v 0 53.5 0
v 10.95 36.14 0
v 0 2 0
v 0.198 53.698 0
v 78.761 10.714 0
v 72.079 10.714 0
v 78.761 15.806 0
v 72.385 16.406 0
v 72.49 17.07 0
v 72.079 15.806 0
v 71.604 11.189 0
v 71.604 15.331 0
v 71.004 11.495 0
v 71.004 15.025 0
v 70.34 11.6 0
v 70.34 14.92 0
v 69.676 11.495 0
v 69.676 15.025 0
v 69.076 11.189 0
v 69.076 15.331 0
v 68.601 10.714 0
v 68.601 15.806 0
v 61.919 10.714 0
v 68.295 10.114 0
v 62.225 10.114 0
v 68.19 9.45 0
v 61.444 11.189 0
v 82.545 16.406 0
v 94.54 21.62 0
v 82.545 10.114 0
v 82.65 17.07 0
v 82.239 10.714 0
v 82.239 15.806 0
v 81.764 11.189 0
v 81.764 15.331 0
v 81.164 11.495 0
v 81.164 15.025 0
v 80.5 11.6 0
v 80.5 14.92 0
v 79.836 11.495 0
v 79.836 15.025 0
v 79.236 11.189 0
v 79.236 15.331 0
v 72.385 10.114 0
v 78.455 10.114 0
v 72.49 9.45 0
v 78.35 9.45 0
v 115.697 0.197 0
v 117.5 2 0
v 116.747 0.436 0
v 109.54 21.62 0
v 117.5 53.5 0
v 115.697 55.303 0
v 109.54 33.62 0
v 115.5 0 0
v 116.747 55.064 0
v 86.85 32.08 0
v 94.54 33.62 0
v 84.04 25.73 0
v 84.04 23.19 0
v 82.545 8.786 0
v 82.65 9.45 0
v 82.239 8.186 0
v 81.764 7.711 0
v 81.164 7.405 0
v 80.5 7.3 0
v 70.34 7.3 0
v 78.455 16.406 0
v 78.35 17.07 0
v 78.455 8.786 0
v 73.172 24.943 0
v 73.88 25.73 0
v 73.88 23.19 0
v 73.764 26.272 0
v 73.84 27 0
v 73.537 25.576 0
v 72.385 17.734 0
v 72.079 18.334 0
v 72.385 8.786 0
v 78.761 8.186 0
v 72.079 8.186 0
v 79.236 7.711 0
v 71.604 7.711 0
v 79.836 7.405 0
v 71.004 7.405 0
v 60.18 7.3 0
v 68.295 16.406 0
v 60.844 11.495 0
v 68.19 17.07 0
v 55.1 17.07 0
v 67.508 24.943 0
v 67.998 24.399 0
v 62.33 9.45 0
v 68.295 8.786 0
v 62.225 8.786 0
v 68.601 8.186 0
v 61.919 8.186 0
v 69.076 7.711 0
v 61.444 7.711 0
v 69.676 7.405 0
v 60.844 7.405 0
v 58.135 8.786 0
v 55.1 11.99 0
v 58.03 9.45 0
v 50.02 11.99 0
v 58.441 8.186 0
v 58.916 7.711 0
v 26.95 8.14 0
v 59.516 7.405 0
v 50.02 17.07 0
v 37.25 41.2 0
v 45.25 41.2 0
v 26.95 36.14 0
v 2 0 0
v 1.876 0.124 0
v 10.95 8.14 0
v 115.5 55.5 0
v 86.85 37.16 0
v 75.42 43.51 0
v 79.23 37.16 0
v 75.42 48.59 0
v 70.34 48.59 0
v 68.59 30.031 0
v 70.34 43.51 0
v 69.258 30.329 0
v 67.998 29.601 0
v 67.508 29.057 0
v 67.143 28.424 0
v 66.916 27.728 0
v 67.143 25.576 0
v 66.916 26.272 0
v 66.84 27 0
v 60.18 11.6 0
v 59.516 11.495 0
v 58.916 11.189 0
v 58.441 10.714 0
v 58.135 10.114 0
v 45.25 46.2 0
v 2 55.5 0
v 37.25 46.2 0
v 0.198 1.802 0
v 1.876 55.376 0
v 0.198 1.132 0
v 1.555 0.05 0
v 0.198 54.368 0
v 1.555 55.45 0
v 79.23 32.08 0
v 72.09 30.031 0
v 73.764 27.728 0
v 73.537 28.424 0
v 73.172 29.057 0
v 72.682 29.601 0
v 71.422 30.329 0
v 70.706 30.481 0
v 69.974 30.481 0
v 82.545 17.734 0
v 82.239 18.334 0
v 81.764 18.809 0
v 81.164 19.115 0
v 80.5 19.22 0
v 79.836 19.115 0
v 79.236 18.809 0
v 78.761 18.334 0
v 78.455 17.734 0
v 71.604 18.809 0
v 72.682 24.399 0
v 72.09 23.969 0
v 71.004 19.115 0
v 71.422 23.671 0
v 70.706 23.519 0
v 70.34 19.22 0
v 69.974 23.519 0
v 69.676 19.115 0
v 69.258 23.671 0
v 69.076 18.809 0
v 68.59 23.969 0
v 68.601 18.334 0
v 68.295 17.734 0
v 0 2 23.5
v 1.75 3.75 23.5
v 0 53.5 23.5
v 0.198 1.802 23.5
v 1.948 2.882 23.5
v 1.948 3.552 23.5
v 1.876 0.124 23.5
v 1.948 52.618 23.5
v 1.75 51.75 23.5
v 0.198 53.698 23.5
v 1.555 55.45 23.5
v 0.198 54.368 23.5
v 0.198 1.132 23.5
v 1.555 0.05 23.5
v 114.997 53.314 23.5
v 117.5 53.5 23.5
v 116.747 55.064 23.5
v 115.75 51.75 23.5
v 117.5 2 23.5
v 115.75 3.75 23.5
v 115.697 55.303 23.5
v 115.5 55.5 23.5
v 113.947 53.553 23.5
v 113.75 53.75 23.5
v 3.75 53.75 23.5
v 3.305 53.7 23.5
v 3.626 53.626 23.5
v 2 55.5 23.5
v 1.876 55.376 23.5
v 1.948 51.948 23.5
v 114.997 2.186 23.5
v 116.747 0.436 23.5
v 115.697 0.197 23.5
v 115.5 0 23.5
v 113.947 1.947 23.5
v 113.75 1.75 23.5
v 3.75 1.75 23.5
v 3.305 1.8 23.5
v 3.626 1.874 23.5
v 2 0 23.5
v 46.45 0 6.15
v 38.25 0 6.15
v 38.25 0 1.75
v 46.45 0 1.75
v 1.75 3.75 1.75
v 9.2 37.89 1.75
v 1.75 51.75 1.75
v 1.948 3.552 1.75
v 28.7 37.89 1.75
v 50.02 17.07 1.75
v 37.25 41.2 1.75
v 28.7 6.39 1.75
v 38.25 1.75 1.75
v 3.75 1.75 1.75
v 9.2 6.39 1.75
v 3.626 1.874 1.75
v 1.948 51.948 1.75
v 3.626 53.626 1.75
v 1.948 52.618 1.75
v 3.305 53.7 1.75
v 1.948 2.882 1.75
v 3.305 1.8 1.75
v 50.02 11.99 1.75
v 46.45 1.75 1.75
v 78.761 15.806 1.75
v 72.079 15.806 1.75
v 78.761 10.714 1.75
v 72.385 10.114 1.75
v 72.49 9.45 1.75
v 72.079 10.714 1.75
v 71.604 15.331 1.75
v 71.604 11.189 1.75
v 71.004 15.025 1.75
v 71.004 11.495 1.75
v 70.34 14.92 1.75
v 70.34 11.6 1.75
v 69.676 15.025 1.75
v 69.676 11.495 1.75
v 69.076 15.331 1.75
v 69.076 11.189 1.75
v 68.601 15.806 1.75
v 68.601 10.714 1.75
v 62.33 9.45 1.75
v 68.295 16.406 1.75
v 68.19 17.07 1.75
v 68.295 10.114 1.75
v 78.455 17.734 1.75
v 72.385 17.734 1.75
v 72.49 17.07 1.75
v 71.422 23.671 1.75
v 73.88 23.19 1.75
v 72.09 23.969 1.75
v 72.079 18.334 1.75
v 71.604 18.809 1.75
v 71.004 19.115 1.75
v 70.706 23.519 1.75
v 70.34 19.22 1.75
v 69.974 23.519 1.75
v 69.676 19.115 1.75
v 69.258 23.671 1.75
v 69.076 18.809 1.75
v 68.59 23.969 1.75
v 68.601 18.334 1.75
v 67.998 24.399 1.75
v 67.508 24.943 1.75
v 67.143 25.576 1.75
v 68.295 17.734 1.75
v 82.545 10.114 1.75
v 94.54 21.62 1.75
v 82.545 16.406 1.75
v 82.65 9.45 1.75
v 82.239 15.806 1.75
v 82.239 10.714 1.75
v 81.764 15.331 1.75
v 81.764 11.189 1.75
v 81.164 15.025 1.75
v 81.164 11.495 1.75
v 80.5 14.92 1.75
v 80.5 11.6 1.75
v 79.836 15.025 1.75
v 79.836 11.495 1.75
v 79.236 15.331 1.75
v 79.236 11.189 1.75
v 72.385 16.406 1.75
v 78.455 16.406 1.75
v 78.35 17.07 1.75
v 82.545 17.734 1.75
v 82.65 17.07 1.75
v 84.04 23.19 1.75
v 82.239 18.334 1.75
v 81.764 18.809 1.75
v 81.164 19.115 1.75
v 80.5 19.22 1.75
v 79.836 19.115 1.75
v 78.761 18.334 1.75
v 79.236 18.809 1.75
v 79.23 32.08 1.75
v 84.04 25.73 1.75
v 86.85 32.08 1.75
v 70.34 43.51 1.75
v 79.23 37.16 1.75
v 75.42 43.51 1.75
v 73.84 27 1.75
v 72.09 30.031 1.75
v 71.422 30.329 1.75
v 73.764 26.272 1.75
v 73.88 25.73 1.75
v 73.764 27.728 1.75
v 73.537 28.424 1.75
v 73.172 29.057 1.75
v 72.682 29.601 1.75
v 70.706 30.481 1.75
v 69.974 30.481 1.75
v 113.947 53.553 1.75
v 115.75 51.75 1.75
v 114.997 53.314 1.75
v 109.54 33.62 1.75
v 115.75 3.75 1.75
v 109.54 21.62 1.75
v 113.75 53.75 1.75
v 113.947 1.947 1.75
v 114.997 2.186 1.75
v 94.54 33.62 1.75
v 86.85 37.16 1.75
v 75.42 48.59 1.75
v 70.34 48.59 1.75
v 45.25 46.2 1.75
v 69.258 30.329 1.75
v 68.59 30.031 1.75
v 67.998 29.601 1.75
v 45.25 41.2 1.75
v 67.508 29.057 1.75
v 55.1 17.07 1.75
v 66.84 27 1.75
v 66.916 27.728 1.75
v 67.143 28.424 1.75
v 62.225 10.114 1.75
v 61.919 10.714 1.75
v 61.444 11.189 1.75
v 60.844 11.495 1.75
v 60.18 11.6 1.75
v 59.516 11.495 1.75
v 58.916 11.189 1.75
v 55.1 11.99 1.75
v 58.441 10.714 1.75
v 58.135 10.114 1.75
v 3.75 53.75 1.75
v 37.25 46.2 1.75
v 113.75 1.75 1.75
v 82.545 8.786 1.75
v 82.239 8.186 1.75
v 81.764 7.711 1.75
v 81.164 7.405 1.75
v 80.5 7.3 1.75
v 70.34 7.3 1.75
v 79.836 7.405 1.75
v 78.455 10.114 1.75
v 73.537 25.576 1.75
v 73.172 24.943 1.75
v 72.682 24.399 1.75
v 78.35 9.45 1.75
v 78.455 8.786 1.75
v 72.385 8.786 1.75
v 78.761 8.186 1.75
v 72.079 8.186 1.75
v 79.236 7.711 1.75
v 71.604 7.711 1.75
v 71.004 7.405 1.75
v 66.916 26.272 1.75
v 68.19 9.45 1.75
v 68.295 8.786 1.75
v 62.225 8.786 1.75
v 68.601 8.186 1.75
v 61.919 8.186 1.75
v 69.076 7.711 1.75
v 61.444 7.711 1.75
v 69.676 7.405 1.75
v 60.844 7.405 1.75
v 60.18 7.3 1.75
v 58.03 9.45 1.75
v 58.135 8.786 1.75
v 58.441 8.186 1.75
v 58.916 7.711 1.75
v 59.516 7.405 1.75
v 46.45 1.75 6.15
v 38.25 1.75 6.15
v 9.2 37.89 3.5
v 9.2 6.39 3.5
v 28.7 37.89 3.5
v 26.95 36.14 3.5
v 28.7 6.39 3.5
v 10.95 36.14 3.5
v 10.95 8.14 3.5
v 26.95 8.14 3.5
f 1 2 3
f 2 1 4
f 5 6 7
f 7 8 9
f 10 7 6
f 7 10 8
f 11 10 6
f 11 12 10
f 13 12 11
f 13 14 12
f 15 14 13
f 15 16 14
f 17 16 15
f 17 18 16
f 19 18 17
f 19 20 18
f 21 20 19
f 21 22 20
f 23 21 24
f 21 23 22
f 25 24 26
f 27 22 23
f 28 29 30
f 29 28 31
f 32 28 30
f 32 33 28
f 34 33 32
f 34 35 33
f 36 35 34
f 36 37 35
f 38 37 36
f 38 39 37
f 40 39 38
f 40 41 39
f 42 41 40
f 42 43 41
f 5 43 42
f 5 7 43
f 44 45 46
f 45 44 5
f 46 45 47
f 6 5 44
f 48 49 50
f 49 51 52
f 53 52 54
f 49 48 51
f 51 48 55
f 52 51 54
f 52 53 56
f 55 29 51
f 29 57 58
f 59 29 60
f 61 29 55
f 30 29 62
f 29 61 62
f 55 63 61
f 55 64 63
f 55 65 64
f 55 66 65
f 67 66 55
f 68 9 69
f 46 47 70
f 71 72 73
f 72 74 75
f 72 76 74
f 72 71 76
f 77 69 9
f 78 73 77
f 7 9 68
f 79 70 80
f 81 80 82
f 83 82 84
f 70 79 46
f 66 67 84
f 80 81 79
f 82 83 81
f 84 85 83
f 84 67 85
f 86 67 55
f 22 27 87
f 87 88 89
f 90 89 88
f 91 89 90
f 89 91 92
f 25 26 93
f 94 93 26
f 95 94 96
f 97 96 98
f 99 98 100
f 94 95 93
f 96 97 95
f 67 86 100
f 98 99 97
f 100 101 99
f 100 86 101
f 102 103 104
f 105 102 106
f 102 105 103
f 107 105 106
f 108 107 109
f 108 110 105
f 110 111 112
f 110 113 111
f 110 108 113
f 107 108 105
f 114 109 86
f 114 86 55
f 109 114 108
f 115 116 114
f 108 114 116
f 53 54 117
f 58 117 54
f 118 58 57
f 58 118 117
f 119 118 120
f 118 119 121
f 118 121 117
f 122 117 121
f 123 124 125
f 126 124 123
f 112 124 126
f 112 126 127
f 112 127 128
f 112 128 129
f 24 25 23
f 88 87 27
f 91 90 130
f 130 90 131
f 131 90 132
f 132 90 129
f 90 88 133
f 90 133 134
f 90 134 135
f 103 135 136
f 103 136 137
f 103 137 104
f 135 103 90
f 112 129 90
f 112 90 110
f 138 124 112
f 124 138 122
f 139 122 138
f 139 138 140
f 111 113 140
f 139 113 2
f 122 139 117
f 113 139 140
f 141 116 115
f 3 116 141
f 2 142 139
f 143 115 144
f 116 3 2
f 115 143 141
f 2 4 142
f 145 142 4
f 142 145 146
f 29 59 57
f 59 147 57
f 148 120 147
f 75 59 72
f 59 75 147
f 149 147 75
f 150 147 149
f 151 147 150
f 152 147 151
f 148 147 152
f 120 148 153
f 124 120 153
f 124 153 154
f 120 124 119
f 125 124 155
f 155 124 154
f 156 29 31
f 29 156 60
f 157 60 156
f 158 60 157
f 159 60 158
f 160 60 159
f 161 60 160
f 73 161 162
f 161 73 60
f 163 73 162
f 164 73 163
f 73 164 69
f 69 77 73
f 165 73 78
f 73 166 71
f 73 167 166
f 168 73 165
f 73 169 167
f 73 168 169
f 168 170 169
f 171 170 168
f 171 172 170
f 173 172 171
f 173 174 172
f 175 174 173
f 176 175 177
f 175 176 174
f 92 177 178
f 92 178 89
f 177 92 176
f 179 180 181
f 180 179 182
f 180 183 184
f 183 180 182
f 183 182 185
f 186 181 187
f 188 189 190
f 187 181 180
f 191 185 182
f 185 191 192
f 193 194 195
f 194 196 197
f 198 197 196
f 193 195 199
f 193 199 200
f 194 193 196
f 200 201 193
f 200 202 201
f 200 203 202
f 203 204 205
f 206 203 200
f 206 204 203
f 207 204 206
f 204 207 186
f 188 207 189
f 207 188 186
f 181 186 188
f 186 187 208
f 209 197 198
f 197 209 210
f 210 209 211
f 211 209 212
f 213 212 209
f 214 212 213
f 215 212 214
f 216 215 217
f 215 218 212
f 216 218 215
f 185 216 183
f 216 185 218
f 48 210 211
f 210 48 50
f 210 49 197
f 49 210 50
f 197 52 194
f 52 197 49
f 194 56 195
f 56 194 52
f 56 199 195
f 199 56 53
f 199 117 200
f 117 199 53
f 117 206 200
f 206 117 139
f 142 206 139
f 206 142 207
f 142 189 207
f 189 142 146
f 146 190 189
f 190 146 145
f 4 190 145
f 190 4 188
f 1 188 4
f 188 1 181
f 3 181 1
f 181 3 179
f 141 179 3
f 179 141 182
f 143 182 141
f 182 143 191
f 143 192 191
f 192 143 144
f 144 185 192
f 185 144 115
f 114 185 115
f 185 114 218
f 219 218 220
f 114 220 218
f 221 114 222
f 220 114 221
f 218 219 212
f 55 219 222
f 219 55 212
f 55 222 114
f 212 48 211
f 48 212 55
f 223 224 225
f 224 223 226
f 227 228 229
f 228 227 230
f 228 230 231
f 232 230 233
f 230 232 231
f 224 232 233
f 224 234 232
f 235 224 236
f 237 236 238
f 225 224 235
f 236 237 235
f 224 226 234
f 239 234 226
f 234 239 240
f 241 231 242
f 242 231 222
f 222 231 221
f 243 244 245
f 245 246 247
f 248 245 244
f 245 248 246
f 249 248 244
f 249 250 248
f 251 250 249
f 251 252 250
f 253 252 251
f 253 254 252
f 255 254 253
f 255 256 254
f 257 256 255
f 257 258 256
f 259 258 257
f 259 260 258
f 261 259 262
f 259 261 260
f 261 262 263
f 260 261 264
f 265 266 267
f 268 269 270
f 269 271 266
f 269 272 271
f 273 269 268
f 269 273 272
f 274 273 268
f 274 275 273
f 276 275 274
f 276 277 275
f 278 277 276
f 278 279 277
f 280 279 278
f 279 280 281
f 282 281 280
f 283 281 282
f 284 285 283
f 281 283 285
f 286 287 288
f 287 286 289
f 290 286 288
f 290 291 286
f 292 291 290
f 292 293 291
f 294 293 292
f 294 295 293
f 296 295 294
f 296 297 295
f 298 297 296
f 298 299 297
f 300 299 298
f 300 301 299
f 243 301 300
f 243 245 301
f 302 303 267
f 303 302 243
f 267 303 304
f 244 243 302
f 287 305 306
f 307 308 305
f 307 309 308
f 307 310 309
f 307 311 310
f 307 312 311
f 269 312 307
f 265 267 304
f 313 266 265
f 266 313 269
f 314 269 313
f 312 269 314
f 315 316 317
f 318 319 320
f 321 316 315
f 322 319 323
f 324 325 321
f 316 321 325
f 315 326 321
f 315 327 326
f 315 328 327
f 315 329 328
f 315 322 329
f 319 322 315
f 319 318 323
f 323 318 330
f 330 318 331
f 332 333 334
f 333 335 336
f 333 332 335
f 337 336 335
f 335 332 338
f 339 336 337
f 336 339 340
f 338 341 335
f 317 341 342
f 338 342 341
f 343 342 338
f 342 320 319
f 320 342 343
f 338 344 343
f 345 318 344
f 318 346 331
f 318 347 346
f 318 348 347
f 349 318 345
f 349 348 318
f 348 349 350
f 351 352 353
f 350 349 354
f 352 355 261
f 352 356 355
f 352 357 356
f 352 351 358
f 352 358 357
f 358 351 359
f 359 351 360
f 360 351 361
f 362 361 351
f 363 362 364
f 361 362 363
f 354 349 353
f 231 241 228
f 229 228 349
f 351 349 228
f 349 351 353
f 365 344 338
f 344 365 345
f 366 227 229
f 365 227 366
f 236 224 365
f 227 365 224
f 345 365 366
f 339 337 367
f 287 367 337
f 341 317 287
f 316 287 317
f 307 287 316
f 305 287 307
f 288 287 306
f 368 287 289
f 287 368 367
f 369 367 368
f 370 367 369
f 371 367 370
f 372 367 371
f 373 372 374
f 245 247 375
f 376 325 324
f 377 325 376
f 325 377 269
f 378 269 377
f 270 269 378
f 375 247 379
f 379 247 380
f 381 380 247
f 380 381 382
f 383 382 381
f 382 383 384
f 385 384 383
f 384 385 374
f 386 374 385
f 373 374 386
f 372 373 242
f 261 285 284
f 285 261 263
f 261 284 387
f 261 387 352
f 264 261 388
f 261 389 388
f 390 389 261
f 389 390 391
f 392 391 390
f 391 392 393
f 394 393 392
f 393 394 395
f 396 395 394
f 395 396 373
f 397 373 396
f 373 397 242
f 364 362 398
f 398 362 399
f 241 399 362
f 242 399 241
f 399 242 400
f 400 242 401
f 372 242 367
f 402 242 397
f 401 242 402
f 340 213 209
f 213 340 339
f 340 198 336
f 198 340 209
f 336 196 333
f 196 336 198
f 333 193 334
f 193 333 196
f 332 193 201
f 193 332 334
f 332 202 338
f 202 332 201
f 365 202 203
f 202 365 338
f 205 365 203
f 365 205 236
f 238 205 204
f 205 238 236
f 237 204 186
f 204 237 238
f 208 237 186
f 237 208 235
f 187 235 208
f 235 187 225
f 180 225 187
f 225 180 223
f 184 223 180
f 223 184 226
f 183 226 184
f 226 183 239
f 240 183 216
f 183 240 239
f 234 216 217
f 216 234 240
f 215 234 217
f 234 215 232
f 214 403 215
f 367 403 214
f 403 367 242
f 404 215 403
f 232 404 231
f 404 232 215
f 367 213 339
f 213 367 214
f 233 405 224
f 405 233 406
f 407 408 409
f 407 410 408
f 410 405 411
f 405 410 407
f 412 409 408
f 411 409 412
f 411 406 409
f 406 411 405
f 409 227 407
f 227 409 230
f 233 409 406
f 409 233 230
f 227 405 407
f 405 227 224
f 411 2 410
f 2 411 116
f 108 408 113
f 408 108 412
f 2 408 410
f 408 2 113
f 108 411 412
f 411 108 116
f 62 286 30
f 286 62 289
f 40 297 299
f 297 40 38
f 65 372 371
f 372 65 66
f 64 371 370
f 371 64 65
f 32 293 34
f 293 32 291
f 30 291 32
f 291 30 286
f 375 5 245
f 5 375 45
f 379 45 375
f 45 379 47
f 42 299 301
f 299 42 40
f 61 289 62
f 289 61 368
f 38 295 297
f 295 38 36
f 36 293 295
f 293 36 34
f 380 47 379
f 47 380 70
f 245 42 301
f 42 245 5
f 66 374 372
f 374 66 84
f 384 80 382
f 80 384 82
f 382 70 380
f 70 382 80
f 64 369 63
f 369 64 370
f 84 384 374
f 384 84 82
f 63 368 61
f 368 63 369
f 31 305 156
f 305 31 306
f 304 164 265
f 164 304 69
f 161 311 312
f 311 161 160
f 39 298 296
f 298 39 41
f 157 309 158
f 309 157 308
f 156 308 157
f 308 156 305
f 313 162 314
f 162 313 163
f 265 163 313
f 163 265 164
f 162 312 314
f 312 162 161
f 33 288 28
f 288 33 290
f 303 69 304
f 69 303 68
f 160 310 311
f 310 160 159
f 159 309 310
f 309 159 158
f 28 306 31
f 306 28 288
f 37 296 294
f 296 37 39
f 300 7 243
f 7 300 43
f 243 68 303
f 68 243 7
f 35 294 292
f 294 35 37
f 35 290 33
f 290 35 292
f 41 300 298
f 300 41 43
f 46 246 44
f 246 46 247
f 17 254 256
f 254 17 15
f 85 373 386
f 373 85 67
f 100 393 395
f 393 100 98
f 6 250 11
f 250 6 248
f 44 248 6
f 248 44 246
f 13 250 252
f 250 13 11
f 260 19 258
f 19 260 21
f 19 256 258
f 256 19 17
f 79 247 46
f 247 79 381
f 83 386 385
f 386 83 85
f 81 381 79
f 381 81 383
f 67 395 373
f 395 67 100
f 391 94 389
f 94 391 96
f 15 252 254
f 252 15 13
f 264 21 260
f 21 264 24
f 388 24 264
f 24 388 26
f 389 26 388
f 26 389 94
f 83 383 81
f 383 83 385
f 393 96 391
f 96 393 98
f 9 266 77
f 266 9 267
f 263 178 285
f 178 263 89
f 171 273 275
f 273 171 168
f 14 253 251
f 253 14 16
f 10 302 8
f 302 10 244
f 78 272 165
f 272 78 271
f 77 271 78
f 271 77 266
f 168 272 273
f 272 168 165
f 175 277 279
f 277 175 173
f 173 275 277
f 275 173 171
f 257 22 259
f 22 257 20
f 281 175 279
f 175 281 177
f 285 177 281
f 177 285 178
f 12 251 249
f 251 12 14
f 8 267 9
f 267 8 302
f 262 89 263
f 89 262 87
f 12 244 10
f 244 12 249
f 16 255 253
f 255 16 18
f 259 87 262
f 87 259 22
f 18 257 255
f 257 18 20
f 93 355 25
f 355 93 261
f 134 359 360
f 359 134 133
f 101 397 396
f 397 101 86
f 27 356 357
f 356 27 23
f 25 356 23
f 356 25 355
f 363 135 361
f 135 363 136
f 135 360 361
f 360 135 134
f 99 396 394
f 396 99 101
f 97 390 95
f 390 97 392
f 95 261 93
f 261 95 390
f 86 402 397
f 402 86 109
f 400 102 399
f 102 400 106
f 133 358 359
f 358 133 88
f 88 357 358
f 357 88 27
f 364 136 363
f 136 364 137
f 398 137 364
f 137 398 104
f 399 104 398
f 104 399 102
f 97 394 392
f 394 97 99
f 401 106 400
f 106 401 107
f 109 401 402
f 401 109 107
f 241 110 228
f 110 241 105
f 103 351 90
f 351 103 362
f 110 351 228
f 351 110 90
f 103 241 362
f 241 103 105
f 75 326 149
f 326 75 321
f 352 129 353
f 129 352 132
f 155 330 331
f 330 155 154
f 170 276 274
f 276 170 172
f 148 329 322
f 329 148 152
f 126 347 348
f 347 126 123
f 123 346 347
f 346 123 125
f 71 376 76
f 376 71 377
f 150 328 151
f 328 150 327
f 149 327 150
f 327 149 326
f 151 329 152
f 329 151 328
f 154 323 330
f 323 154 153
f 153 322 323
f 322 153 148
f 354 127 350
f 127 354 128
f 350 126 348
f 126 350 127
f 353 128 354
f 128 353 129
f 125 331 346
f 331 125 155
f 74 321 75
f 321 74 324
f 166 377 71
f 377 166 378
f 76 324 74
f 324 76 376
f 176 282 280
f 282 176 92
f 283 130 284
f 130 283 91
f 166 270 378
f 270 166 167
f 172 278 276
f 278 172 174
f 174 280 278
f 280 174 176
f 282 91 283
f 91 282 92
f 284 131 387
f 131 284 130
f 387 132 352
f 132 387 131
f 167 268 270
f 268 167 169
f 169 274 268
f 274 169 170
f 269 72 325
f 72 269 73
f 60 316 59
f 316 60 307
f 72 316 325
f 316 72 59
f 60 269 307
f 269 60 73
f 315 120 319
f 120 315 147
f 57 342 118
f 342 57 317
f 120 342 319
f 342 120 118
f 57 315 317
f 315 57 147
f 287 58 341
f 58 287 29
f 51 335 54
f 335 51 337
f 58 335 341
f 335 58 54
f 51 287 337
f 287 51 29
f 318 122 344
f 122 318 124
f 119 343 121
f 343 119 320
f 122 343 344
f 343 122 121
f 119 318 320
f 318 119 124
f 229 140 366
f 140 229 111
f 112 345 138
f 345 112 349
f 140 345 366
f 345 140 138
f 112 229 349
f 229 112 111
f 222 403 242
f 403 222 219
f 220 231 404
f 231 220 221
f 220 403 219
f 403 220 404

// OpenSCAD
// Default is the working fine version/no sticker on screen

WallThickness = 1.75;
BaseHeight = 20+2*WallThickness;
BaseDepth = 52+2*WallThickness;;
BaseWidth = 114+2*WallThickness;
CornerRadius = 2;
ScreenWidth = 28;
ScreenHeight = 16;
ScreenX = 9.2+WallThickness;
ScreenY = 10.2+WallThickness;
FirstButtonX = 33.5+WallThickness;
FirstButtonY = 6.2+WallThickness;
ButtonYOffset=1.5;
ButtonSize = 4.3;
ButtonStep = 2.54;

module RoundedRectangle($Width=BaseWidth, $Depth=BaseDepth, $Radius=CornerRadius) 
{
    polygon(points = [[$Radius, 0], [$Width-$Radius, 0],[$Width, $Radius], [$Width, $Depth-$Radius], [$Width-$Radius, $Depth], [$Radius, $Depth], [0, $Depth-$Radius], [0, $Radius]], paths=[[0,1,2,3,4,5,6,7]]);
        
    translate([$Radius,$Radius,0]){
        circle(r=$Radius);
    }        
    translate([$Width-$Radius,$Radius,0]){
        circle(r=$Radius);
    }
    
    translate([$Width-$Radius,$Depth-$Radius,0]){ 
        circle(r=$Radius);
    }
   
    translate([$Radius,$Depth-$Radius,0]){ 
        circle(r=$Radius);
    }
}

module base3D($Width=BaseWidth, $Depth=BaseDepth, $Height=BaseHeight, $Radius=CornerRadius, $Thickness=WallThickness)
{
    difference()
    {
        linear_extrude(height = $Height, center = false, convexity = 0, twist = 0)
        RoundedRectangle($Width, $Depth, $Radius);
        translate([$Thickness, $Thickness, $Thickness]) {
        linear_extrude(height = $Height, center = false, convexity = 0, twist = 0)
        RoundedRectangle($Width-$Thickness*2, $Depth-$Thickness*2, $Radius);
        }
    }
}

difference() {
    
    union() {
    translate([ScreenX-WallThickness, ScreenY-WallThickness-1.5*ButtonStep])
        cube(size=[ScreenHeight+WallThickness*2, ScreenWidth+WallThickness*2, WallThickness*2], center=false);

        base3D(BaseWidth, BaseDepth, BaseHeight, CornerRadius, WallThickness);
    }

    translate([ScreenX, ScreenY-1.5*ButtonStep])
        cube(size=[ScreenHeight, ScreenWidth, WallThickness*2], center=false);
    
    // First Button - lower right most button
    translate([BaseWidth-WallThickness-FirstButtonX, FirstButtonY+ButtonYOffset, 0])
        cylinder(h=WallThickness*2, d=ButtonSize, center=true , $fn=20);
    // Button to the left of the First button
    translate([BaseWidth-WallThickness-FirstButtonX, FirstButtonY+ButtonStep*3+ButtonYOffset])
        cylinder(h=WallThickness*2, d=ButtonSize, center=true , $fn=20);
    // Button to the upper of the First button
    translate([BaseWidth-WallThickness-FirstButtonX-ButtonStep*4, FirstButtonY+ButtonYOffset])
        cylinder(h=WallThickness*2, d=ButtonSize, center=true , $fn=20);
    // Button to the upper/left of the First button
    translate([BaseWidth-WallThickness-FirstButtonX-ButtonStep*4, FirstButtonY+ButtonStep*3+ButtonYOffset])
        cylinder(h=WallThickness*2, d=ButtonSize, center=true , $fn=20);
    // Step Button
    translate([BaseWidth-WallThickness-FirstButtonX-ButtonStep*8, FirstButtonY+ButtonYOffset])
        cylinder(h=WallThickness*2, d=ButtonSize, center=true , $fn=20);
    
    // Timer pins
    translate([BaseWidth-WallThickness-FirstButtonX-ButtonStep*10-2.54, FirstButtonY+2*ButtonStep+ButtonYOffset])
        cube(size=[ButtonStep*2, ButtonStep*2, WallThickness*2], center=true);
    
    
    // Adjustable Resistor blule/white
    translate([BaseWidth-WallThickness-FirstButtonX-ButtonStep*4, FirstButtonY+ButtonStep*7.5])
        cylinder(h=WallThickness*2, d=7, center=true , $fn=30);
    // Ground PINs
    translate([BaseWidth-WallThickness-FirstButtonX-ButtonStep+1, FirstButtonY+ButtonStep*6.5])
        cube(size=[ButtonStep*4, ButtonStep, WallThickness*2], center=true);
    // Amplified PINs
    translate([BaseWidth-WallThickness-FirstButtonX+ButtonStep, FirstButtonY+ButtonStep*10.5])
        cube(size=[ButtonStep*3, ButtonStep*2, WallThickness*2], center=true);
    // Amplifier power voltage adjust pin and big capacitor
    translate([BaseWidth-WallThickness-FirstButtonX+ButtonStep+15+4, FirstButtonY+ButtonStep*10.5-5-2])
        cube(size=[15, 12, WallThickness*2], center=true);
    // Normal and Buffered PINs
    translate([BaseWidth-WallThickness-FirstButtonX-3*ButtonStep, FirstButtonY+ButtonStep*15])
        cube(size=[ButtonStep*2, ButtonStep*2, WallThickness*2], center=true);
    // Nano onboard pins
    translate([36.5+WallThickness+4-1, ScreenY+ScreenWidth+WallThickness+1+1])
        cube(size=[8, 5, WallThickness*2], center=true);
    // Mini USB Hole
    translate([36.5+WallThickness, WallThickness, WallThickness])
        rotate([90, 0, 0])
            cube(size=[8.2, 4.4, WallThickness*2], center=false);
}

/*
translate([18+7, BaseDepth, BaseHeight/2-4])
 rotate([270, 0, 0])
    linear_extrude(height = WallThickness/2){
        text("IBE Group, Inc.", size=5, font="Arial Black");
}

translate([15+8, BaseDepth, BaseHeight-4])
rotate([270, 0, 0])
    linear_extrude(height = WallThickness/2){
        text("Copyright© 2019", size=5, font="Arial Black");
}
*/
